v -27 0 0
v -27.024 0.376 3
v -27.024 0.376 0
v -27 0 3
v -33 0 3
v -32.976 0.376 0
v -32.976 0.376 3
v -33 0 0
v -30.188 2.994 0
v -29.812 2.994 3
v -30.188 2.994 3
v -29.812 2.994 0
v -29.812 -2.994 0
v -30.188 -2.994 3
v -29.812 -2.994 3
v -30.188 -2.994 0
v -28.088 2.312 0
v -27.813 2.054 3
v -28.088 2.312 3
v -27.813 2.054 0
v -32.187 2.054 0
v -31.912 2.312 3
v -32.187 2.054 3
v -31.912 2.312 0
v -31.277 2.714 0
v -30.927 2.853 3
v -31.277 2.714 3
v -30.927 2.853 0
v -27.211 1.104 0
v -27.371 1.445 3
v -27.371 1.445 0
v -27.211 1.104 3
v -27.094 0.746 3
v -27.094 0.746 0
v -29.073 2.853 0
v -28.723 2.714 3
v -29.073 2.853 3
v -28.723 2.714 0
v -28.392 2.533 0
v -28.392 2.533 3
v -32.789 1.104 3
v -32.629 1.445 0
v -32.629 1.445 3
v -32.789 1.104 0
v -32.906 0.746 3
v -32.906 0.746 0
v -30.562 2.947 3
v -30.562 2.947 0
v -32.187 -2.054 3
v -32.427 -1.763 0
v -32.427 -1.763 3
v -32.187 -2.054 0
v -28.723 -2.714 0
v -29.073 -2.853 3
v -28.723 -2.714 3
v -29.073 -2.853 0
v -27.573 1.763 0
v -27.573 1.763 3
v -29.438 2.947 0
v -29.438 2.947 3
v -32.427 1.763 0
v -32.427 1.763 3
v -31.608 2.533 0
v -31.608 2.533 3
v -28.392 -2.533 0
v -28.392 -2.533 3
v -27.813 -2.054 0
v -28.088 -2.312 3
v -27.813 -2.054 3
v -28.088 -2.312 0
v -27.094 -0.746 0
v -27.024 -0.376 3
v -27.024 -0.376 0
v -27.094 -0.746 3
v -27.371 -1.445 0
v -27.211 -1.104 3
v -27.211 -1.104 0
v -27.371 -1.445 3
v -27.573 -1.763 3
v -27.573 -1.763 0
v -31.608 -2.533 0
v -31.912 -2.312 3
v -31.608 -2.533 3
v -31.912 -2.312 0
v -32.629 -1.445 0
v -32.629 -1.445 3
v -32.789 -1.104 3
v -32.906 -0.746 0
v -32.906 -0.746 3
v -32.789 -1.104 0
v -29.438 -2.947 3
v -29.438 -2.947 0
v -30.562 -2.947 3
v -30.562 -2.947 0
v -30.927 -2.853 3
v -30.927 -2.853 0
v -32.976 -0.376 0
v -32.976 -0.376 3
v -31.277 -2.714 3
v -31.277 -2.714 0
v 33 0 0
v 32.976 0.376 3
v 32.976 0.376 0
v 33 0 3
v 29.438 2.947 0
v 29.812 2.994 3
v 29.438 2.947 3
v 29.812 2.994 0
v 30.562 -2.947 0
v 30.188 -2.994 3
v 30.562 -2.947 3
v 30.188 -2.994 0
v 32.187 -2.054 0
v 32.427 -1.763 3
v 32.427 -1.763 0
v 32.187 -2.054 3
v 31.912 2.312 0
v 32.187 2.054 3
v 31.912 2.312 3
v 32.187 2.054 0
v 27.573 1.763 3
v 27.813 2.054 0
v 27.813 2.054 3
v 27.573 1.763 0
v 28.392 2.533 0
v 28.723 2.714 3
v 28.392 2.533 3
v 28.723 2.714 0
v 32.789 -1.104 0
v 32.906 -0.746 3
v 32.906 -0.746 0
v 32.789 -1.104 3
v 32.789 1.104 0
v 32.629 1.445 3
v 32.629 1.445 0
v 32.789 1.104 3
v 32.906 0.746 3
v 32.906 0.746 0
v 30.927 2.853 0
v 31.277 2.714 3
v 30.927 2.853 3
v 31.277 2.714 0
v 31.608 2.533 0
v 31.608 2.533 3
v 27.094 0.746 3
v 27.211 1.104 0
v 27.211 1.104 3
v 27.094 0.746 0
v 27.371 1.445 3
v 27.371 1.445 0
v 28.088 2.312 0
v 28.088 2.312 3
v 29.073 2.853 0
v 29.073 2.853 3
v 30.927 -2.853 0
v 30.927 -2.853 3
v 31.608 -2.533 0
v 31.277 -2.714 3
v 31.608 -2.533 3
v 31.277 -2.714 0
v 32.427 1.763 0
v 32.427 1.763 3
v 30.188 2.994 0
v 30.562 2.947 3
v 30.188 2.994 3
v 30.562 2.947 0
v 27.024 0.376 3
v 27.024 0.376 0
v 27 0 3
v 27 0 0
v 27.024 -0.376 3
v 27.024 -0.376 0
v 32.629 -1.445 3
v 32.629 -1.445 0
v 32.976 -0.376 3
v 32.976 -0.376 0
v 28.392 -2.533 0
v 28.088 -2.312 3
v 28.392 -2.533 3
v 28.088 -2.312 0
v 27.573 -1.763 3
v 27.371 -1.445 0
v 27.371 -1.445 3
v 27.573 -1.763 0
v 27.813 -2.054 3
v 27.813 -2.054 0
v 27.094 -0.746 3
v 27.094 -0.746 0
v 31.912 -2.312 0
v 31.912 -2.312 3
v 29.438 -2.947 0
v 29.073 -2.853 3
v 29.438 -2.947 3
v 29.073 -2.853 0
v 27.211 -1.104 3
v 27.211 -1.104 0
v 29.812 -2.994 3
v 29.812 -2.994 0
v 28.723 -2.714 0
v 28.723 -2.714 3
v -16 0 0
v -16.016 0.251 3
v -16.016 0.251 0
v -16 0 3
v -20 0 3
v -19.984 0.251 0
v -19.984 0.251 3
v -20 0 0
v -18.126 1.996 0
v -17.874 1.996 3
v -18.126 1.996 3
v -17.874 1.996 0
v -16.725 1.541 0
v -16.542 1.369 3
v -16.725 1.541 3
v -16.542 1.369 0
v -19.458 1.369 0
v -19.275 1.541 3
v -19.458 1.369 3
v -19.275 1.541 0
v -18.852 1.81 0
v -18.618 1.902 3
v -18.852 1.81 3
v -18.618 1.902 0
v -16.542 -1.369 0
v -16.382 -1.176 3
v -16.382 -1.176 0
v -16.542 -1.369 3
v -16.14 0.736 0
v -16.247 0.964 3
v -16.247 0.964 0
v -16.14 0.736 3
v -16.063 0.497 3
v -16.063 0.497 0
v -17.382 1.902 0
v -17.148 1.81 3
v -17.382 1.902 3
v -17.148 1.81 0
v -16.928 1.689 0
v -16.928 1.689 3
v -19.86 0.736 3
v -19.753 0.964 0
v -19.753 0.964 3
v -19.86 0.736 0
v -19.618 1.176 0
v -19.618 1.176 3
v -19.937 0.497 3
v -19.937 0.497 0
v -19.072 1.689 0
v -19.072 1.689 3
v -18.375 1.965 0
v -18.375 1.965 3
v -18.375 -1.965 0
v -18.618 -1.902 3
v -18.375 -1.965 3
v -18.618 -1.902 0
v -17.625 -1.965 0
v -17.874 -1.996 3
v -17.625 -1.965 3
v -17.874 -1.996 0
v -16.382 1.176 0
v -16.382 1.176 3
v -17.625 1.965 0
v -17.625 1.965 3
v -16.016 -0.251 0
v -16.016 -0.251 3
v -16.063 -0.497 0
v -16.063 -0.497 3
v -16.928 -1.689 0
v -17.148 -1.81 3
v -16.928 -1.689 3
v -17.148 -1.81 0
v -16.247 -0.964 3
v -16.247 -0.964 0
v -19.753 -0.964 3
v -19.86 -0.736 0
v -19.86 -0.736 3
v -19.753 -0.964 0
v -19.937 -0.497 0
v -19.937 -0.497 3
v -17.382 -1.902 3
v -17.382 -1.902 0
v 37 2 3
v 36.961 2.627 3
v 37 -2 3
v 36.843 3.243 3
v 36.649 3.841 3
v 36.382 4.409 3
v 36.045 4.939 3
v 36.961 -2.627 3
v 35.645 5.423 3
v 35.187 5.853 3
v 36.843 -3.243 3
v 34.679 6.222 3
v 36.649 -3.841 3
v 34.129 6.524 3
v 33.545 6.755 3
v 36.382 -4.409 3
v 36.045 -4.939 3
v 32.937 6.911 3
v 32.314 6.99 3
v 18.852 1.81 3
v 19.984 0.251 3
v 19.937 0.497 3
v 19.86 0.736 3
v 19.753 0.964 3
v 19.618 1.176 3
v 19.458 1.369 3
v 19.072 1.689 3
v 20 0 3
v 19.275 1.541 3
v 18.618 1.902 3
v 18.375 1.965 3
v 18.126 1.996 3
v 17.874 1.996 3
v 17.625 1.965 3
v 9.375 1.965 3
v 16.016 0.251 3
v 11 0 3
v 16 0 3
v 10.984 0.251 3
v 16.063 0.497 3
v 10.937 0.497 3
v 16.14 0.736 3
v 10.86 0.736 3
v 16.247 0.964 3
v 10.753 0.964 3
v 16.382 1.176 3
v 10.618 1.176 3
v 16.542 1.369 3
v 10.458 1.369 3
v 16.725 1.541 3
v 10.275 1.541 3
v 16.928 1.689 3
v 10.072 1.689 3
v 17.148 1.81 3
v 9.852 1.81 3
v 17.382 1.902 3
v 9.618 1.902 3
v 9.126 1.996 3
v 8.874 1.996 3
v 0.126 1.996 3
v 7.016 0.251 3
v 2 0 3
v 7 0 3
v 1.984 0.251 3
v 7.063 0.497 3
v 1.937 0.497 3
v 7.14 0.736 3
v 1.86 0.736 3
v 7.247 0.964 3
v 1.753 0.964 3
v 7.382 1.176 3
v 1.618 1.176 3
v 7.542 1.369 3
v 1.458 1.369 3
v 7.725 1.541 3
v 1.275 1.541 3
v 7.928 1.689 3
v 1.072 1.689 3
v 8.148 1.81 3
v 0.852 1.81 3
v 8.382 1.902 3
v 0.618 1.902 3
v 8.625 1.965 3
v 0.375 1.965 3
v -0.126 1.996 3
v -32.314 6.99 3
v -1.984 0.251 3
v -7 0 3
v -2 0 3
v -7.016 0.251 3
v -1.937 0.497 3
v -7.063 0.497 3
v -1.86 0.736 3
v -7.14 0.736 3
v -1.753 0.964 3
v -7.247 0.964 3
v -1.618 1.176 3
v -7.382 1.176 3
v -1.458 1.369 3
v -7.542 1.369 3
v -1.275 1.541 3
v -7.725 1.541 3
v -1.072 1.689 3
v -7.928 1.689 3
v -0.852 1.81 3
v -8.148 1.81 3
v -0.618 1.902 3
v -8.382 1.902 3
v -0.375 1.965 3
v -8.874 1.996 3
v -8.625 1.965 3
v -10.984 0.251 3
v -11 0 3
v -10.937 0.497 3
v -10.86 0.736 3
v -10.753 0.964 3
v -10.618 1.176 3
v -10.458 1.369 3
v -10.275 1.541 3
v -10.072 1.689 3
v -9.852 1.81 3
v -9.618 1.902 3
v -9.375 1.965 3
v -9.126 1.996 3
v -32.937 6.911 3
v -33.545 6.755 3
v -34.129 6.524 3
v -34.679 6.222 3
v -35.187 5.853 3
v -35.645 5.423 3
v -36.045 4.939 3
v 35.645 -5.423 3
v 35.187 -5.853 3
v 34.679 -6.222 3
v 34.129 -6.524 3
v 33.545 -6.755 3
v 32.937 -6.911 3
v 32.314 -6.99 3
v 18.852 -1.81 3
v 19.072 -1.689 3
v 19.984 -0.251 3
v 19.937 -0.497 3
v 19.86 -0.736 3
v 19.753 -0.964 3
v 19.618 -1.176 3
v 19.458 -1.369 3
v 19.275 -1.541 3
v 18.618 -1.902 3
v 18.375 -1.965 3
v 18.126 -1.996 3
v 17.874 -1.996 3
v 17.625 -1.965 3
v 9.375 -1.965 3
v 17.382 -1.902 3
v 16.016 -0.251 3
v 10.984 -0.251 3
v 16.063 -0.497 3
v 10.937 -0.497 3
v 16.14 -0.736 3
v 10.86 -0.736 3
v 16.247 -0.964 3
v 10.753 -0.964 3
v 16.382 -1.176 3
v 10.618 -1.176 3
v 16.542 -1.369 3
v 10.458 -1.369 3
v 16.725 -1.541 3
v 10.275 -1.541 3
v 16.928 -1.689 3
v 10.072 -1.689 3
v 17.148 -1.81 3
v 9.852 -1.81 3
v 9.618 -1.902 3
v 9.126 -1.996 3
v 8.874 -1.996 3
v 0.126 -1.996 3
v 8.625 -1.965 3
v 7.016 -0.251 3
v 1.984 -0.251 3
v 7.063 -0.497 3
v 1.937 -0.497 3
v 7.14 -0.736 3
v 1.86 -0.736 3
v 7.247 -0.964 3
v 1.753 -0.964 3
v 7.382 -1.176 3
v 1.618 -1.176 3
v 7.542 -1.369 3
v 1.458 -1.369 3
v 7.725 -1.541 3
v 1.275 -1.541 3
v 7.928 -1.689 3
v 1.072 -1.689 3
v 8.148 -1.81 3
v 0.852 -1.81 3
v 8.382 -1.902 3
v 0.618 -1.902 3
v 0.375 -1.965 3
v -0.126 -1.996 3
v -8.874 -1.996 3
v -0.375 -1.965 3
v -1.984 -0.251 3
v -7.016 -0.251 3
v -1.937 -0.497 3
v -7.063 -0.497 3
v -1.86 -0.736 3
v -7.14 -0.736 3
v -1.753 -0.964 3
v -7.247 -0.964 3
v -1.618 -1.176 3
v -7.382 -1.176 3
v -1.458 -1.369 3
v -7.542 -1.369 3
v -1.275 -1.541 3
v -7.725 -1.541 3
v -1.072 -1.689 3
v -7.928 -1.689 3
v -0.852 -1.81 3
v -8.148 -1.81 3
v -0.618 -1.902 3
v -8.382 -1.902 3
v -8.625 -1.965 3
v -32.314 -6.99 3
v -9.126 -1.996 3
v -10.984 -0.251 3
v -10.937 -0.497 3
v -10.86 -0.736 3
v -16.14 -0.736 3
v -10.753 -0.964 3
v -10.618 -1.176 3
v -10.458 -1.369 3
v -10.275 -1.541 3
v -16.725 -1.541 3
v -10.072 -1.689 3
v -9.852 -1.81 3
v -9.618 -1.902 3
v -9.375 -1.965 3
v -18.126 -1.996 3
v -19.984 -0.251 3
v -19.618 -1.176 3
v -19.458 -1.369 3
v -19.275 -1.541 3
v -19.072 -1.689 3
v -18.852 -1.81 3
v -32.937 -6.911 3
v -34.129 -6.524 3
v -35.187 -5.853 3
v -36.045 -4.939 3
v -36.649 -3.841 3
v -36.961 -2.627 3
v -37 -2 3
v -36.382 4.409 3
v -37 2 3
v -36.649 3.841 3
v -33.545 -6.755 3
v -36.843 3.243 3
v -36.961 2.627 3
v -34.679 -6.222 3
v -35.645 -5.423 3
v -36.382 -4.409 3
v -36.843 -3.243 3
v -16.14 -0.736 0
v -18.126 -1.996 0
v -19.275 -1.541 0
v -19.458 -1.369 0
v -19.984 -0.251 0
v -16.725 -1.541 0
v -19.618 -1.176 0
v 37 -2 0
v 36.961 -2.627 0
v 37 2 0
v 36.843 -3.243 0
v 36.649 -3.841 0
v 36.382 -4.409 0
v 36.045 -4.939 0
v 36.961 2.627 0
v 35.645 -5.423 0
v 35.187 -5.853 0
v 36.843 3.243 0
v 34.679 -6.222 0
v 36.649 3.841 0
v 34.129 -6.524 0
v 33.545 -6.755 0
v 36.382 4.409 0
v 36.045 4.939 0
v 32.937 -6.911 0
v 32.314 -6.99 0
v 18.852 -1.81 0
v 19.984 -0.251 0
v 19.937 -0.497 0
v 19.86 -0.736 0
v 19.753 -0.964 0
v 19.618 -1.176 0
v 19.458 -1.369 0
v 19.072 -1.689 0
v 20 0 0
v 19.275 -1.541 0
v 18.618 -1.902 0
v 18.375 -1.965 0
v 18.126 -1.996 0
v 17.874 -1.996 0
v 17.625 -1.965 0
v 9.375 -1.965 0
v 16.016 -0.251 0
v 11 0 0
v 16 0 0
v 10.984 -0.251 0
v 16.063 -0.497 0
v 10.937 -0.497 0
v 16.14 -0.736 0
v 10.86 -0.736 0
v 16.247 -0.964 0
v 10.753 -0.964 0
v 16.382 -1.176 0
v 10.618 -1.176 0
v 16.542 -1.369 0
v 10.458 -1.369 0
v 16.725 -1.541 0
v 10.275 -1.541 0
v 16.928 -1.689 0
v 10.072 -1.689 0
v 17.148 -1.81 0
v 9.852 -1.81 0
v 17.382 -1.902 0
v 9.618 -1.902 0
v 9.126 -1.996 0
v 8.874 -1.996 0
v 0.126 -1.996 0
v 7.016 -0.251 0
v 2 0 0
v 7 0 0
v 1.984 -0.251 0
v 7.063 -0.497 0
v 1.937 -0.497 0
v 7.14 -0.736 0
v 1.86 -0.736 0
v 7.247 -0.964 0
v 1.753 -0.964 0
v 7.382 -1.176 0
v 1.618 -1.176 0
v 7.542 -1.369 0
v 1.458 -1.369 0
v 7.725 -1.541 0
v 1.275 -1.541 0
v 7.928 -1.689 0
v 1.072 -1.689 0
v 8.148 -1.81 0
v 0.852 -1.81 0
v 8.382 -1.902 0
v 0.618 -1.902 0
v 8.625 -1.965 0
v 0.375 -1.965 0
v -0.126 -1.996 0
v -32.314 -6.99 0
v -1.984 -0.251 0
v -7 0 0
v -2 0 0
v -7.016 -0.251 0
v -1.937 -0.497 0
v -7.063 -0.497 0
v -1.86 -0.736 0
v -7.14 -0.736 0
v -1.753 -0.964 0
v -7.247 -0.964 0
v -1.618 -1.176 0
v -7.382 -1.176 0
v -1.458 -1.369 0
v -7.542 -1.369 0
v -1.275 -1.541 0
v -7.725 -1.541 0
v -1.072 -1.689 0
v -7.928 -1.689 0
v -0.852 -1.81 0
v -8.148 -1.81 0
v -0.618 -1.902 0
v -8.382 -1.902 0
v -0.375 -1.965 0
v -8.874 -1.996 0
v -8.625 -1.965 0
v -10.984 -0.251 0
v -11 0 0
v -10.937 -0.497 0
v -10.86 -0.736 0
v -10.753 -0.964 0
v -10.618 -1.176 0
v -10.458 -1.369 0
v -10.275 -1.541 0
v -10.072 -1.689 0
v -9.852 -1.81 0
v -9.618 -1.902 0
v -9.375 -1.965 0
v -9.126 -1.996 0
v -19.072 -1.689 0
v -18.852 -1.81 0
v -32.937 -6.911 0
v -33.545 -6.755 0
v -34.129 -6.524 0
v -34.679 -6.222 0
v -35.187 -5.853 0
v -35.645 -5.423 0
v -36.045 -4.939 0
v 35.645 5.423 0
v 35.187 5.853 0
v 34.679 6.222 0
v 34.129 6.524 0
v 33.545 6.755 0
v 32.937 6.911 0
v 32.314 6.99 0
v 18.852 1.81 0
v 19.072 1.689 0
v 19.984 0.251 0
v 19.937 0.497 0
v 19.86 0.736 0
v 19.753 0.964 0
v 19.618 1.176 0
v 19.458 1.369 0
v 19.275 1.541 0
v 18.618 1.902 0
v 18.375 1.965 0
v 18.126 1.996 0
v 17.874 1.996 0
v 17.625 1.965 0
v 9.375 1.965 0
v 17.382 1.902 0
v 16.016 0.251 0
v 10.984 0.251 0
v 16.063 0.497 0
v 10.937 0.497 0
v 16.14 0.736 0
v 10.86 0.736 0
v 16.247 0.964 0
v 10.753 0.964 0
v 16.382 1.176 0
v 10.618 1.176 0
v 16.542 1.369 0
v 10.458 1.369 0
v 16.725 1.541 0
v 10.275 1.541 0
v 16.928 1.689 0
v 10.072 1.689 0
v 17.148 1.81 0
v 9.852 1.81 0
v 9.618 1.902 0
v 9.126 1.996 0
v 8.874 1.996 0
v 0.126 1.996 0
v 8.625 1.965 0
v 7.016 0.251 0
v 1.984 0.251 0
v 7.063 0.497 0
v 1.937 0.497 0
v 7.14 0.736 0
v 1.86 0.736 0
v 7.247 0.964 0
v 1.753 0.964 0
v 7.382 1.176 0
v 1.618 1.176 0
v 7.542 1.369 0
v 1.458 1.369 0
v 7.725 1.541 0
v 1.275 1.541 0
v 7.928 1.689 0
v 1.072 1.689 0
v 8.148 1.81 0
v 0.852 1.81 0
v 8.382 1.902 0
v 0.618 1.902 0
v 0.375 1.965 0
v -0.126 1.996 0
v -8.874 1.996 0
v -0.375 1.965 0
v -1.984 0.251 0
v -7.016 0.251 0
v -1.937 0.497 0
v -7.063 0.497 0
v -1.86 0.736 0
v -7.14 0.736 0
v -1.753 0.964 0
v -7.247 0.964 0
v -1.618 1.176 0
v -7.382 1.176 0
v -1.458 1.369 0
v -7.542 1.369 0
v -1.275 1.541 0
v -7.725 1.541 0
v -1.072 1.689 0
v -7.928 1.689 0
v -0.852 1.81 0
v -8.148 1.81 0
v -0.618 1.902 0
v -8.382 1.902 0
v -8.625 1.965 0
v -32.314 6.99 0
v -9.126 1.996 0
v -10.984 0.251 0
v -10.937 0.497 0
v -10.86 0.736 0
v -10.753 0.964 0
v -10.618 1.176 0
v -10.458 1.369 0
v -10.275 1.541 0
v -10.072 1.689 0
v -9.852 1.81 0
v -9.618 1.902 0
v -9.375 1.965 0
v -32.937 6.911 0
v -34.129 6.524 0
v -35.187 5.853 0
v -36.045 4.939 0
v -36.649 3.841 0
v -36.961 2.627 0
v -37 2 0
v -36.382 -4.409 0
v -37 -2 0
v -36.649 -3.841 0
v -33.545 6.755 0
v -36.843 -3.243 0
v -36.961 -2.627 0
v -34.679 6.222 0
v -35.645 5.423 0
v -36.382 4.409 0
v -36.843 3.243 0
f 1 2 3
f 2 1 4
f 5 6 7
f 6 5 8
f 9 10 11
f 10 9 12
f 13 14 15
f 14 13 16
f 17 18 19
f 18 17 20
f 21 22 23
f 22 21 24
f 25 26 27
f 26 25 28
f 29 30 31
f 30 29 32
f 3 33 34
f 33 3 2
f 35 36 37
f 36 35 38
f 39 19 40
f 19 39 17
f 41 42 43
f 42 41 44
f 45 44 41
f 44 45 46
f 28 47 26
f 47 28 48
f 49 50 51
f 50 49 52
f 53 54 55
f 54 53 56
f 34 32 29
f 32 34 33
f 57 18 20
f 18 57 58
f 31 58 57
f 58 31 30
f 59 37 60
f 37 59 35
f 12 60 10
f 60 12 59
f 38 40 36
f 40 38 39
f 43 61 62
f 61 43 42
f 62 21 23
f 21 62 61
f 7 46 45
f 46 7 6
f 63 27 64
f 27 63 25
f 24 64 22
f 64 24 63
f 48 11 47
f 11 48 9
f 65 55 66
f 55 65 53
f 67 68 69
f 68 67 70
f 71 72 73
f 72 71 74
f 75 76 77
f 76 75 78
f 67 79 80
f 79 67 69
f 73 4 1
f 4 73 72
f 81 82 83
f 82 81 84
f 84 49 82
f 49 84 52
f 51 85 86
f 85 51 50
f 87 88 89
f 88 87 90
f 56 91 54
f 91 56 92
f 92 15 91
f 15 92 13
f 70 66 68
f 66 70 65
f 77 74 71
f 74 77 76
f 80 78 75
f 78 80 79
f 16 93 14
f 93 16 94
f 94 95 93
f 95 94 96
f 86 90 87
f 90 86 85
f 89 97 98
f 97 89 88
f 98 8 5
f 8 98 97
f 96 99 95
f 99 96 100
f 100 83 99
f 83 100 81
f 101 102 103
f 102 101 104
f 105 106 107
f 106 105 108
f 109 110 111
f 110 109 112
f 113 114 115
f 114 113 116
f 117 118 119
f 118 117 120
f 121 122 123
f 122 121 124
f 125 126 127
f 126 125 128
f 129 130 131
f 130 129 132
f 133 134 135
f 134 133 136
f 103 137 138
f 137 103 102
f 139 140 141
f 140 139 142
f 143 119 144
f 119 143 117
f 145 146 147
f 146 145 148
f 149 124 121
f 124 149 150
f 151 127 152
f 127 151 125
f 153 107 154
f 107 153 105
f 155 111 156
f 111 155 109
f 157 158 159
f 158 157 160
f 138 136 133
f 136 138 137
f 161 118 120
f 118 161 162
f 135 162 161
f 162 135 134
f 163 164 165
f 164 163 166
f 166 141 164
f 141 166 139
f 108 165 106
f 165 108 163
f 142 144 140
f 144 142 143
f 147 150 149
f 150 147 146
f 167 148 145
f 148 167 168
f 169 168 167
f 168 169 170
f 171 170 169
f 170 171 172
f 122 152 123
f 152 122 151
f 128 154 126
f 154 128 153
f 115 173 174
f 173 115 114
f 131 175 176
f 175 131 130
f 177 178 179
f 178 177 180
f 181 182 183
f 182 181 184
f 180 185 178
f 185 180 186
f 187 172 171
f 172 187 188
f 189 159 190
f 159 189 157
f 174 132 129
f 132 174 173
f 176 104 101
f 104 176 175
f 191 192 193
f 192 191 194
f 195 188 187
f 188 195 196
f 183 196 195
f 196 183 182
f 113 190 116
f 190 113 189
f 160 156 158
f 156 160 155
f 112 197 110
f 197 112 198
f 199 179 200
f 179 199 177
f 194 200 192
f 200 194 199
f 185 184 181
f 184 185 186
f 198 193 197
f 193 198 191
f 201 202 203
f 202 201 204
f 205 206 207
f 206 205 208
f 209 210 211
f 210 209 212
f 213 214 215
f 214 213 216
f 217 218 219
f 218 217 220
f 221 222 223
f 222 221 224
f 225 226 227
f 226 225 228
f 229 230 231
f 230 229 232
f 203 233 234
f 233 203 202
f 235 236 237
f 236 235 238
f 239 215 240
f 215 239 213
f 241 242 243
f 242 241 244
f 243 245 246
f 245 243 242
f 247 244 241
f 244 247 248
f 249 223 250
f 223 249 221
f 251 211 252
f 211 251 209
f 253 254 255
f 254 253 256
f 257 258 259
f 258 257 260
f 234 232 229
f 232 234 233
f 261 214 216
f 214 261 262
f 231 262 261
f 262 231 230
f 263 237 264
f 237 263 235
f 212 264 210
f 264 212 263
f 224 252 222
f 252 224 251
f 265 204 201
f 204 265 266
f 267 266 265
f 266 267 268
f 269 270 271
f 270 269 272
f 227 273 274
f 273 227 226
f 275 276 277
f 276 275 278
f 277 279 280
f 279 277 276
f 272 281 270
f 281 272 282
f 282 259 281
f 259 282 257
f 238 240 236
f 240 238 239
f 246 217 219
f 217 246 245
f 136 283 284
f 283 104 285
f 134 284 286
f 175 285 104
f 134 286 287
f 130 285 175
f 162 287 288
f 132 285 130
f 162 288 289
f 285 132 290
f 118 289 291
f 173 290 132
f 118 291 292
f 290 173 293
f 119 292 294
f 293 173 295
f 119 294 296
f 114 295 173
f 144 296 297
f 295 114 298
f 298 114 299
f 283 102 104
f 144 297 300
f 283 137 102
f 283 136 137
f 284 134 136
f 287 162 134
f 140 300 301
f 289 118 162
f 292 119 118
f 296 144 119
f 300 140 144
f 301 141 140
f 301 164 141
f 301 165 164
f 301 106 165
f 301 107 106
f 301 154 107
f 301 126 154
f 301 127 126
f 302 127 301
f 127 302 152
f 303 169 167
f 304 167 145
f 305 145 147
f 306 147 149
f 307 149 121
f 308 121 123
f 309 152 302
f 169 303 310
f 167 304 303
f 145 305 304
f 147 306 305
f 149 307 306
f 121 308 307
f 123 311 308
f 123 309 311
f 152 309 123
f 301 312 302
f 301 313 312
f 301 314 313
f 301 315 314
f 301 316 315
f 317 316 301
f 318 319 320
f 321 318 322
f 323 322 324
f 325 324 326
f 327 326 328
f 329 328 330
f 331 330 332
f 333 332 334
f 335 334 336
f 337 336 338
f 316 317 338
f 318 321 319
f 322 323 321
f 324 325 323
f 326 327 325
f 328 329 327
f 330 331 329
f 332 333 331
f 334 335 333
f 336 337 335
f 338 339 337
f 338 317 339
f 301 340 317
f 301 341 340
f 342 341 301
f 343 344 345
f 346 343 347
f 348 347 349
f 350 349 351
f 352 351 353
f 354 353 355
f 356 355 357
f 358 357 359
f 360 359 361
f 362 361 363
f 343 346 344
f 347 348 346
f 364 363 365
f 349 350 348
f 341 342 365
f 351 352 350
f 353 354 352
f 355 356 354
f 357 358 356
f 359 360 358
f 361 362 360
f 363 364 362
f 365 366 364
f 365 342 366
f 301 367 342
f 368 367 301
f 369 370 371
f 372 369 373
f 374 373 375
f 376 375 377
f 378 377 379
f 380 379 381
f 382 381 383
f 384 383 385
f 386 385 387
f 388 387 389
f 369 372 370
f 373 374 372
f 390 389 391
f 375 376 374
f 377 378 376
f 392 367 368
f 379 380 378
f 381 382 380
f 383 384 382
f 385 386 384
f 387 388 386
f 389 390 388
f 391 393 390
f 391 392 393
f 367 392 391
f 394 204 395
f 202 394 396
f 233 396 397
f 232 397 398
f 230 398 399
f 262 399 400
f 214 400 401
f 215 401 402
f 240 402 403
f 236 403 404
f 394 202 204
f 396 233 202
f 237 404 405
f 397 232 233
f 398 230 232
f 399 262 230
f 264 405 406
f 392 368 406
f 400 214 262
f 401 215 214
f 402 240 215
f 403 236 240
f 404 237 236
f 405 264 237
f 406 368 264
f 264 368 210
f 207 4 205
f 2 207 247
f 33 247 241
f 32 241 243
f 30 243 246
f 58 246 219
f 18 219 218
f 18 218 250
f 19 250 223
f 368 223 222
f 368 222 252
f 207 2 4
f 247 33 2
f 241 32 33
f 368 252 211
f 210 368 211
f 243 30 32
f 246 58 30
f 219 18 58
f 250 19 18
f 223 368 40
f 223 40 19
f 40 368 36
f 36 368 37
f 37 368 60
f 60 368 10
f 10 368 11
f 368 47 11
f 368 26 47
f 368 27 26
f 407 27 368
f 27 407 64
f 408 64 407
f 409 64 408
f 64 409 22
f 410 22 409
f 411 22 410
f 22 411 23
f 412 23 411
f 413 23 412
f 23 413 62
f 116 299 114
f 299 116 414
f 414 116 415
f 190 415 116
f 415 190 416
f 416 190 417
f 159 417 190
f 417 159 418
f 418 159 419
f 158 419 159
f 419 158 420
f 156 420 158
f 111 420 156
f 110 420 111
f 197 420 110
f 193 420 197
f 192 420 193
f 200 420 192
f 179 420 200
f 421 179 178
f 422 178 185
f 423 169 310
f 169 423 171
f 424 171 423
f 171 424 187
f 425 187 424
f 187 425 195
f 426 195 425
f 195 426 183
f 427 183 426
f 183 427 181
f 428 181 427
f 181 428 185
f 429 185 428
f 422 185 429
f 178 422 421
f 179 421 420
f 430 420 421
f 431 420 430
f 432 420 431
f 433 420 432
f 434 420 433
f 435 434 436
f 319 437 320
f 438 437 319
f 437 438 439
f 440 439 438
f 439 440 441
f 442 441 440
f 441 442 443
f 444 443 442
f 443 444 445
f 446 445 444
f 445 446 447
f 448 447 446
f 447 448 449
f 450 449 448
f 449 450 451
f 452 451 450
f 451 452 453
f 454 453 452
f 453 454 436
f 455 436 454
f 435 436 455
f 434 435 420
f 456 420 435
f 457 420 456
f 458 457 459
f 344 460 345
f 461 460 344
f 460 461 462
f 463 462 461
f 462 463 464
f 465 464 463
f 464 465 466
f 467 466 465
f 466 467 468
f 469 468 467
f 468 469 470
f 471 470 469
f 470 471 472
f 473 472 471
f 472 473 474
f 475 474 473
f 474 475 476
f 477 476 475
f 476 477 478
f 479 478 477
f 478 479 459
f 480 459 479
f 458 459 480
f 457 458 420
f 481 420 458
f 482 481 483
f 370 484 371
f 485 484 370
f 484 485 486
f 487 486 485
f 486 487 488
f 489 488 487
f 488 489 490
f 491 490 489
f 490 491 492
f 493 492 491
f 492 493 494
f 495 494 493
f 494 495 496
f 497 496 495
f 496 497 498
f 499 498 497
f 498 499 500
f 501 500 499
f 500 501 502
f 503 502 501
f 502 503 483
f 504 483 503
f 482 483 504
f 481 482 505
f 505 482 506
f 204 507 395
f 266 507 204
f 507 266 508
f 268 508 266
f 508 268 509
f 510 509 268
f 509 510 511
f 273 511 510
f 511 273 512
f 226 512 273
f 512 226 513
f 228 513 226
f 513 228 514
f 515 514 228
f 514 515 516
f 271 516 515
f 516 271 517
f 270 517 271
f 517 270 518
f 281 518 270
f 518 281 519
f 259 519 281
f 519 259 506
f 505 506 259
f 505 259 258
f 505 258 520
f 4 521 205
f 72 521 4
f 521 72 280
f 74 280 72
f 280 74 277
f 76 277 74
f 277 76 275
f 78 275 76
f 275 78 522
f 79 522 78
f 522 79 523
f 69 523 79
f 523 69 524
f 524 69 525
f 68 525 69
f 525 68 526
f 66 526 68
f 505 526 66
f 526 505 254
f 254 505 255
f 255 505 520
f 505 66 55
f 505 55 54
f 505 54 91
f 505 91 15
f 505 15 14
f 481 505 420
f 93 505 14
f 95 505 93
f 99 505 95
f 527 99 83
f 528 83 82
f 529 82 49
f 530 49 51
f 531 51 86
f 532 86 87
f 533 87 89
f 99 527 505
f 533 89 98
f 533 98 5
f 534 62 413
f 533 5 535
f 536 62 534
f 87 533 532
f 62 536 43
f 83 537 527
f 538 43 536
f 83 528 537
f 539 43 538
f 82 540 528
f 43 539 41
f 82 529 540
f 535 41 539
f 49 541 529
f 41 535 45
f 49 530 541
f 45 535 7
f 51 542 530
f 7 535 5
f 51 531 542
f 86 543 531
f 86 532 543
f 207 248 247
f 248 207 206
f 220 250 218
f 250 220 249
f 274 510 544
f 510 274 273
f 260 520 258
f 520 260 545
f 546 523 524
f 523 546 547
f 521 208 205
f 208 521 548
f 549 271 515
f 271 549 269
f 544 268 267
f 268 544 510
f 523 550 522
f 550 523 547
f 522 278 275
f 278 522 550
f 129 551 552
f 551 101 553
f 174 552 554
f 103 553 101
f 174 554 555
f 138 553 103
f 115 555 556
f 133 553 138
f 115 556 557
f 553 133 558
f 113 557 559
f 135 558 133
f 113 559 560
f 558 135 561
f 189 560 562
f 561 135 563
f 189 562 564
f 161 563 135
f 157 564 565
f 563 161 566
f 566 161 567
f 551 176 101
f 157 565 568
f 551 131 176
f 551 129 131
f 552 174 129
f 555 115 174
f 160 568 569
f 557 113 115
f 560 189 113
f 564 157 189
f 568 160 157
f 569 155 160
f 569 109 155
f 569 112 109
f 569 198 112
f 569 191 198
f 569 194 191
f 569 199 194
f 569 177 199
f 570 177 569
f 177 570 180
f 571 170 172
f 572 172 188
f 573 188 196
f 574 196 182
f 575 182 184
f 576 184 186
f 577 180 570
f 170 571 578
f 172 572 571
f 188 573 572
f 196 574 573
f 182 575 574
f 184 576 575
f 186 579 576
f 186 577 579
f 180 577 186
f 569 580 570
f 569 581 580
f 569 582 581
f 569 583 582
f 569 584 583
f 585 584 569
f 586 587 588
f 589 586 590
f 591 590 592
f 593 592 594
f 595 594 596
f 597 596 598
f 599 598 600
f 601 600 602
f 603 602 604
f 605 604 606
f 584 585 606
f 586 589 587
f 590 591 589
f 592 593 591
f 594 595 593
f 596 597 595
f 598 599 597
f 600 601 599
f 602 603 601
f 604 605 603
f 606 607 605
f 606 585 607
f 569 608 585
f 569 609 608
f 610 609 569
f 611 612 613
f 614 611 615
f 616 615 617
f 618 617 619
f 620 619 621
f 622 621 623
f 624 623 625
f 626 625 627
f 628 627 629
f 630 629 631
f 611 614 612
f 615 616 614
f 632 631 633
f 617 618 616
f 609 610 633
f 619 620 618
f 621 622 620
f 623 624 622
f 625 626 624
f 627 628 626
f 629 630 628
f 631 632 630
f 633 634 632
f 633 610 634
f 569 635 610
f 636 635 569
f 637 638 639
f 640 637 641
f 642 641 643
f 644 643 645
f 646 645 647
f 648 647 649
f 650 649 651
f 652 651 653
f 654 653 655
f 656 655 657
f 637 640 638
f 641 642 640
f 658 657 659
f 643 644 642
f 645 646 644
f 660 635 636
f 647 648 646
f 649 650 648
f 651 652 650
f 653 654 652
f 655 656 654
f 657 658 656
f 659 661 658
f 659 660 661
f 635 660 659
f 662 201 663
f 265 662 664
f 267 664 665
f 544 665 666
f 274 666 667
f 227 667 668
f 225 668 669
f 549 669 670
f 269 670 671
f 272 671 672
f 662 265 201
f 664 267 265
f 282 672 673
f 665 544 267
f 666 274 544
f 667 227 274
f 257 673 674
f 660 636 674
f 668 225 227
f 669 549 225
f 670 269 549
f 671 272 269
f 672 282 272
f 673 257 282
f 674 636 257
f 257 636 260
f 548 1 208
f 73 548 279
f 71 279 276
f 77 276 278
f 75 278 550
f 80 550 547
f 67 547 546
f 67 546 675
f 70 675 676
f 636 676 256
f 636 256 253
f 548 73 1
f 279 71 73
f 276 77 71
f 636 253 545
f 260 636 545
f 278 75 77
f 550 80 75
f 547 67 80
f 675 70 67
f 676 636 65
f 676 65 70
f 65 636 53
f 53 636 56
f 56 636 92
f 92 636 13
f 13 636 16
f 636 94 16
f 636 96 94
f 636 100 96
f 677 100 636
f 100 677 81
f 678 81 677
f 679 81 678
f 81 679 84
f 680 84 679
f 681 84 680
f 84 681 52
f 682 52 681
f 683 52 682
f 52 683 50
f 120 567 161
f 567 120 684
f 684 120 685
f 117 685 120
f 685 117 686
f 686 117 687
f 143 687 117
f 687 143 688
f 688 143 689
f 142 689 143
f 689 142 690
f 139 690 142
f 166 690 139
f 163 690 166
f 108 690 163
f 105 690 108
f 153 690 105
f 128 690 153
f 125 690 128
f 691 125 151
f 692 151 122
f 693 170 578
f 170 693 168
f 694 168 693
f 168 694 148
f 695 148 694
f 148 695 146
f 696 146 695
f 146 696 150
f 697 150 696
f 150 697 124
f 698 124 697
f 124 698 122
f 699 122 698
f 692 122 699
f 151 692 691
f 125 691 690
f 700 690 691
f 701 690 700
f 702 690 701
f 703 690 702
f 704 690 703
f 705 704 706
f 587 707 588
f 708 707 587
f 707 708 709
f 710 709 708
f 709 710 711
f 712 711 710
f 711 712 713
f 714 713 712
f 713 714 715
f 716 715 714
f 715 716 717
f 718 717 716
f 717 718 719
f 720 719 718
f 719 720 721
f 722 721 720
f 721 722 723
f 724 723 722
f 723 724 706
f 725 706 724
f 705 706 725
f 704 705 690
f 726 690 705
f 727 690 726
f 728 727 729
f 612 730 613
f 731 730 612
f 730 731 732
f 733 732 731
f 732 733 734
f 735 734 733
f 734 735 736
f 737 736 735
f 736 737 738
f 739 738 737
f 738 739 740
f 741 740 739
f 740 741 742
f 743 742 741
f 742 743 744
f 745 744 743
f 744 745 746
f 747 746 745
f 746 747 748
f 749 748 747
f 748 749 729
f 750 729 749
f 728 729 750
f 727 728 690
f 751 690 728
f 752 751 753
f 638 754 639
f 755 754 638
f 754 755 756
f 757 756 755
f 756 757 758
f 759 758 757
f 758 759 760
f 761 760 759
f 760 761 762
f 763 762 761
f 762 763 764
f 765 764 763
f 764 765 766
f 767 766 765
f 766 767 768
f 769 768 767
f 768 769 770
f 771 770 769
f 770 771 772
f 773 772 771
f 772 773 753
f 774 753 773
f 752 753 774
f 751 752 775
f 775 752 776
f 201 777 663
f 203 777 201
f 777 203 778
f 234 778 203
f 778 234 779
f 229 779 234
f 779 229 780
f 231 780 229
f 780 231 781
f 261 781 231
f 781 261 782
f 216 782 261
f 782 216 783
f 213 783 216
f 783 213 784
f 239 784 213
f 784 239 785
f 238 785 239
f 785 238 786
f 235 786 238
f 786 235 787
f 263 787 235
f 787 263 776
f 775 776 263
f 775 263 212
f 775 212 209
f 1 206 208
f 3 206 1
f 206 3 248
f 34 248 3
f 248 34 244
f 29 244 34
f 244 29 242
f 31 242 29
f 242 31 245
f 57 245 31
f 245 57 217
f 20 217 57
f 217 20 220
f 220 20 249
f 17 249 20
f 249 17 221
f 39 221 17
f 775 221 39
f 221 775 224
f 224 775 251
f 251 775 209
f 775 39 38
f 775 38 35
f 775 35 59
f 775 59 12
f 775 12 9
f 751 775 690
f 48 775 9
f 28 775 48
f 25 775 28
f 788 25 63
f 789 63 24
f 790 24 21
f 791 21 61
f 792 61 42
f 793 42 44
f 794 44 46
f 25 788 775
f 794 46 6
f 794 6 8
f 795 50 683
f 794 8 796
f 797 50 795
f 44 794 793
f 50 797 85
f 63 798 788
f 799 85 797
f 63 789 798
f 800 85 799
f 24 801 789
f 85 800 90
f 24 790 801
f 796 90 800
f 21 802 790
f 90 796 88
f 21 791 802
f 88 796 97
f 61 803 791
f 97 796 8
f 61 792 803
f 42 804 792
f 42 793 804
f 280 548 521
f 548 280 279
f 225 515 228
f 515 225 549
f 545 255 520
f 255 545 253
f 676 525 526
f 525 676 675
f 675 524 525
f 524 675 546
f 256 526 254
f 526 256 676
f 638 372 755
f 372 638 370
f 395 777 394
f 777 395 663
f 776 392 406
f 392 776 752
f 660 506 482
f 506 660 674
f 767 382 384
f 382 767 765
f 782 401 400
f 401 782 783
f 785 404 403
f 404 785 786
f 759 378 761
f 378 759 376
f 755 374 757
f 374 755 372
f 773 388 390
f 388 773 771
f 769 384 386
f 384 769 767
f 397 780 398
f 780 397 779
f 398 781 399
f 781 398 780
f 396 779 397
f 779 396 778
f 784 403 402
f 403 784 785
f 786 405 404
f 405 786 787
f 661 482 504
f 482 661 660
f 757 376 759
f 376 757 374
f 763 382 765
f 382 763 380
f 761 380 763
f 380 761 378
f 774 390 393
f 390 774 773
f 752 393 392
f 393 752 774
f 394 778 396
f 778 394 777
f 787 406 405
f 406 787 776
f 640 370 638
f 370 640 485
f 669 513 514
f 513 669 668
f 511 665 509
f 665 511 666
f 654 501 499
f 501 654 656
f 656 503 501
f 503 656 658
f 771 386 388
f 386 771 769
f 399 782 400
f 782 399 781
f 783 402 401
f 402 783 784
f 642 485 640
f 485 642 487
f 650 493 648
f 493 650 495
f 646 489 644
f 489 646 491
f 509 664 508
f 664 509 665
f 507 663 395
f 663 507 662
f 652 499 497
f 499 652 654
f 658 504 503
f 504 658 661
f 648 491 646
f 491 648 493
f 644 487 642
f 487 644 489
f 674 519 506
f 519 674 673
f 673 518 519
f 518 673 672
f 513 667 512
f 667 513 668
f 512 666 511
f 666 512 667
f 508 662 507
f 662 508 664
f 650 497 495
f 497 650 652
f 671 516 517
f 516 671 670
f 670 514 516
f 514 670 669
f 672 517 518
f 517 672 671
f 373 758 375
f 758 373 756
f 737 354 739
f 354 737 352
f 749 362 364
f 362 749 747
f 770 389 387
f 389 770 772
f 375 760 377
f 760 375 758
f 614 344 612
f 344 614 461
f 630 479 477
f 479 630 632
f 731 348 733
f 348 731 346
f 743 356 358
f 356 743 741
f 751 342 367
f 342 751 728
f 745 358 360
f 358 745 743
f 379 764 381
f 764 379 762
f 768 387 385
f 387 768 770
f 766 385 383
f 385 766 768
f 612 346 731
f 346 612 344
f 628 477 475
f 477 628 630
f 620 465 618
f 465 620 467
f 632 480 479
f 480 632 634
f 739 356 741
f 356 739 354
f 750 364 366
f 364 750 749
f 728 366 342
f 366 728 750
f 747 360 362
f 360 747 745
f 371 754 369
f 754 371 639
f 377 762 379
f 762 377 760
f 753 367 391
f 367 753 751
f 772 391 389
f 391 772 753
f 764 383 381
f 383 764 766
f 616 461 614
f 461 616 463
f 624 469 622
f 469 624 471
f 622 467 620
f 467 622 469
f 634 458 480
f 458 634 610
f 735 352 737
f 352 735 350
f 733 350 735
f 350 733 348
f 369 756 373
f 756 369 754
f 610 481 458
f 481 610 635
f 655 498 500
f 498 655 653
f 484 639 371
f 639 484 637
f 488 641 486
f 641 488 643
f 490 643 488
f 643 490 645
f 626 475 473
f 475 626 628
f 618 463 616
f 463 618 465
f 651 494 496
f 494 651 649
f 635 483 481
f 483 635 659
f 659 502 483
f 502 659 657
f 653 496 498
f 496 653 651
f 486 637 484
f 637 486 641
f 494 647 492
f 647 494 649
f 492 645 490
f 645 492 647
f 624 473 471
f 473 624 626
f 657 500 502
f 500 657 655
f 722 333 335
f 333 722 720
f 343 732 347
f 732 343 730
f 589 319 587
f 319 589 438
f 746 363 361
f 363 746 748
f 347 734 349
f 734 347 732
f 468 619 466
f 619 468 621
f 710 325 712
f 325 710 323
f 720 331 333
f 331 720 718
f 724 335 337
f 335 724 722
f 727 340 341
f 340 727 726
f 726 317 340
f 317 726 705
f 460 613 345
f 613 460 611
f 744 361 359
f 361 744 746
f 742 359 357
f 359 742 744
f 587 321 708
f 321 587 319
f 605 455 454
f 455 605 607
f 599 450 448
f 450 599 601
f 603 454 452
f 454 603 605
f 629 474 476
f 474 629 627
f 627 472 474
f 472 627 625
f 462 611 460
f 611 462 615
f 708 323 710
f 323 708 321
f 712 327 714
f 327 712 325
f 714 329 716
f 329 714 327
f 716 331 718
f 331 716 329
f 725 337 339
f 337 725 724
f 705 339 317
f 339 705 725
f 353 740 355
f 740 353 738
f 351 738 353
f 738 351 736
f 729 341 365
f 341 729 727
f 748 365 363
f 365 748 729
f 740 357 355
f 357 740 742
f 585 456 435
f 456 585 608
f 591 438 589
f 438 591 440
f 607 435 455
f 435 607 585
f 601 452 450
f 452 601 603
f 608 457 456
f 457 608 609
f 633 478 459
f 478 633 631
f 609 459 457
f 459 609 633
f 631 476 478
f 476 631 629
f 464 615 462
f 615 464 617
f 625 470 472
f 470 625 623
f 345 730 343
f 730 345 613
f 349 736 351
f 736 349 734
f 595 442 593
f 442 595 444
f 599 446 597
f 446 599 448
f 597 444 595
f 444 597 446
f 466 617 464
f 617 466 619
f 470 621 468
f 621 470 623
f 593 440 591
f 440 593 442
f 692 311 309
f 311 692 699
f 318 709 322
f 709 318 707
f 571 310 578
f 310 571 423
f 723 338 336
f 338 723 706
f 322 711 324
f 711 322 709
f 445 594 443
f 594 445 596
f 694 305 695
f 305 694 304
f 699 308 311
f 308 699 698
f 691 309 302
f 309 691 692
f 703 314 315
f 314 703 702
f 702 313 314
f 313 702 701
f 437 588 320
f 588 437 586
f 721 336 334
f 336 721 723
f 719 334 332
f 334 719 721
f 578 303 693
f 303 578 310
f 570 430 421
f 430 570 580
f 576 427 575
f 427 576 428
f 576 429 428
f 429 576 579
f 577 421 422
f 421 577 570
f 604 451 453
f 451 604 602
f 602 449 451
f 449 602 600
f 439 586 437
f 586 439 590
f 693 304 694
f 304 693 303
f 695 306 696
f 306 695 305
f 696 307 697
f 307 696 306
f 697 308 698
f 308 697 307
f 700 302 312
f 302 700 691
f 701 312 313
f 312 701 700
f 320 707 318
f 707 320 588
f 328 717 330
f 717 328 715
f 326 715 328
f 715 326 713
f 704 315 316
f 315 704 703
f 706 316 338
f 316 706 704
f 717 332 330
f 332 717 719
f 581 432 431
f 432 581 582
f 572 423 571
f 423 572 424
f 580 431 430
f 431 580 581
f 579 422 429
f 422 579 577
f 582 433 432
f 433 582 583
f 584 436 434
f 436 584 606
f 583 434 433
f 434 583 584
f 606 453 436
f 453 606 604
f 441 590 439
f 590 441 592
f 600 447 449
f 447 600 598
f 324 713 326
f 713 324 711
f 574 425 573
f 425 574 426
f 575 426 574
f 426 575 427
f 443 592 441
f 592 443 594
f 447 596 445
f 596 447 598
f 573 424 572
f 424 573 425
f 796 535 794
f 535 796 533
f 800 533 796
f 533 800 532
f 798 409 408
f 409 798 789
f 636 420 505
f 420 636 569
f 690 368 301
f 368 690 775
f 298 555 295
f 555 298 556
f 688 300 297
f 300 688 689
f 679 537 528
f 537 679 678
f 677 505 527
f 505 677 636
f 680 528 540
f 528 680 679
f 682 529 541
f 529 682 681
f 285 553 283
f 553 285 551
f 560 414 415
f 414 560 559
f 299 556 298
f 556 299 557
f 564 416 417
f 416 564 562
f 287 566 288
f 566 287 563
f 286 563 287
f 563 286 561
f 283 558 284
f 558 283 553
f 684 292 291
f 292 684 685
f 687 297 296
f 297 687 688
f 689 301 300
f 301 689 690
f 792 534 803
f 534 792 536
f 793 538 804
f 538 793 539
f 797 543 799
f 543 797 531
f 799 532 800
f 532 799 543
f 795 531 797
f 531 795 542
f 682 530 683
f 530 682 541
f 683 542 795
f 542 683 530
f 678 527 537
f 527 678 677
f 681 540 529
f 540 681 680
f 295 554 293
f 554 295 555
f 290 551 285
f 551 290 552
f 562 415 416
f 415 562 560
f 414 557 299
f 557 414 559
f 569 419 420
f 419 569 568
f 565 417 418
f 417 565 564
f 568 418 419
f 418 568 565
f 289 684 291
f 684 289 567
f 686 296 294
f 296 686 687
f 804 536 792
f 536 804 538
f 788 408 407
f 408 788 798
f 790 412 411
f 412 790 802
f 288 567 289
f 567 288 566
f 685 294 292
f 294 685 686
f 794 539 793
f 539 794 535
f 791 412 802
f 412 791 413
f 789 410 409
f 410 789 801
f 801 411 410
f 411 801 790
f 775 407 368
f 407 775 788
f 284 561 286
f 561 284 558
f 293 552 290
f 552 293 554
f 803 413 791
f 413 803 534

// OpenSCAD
$fn = 50;


difference() {
	union() {
		hull() {
			translate(v = [-32.0000000000, 2.0000000000, 0]) {
				cylinder(h = 3, r = 5);
			}
			translate(v = [32.0000000000, 2.0000000000, 0]) {
				cylinder(h = 3, r = 5);
			}
			translate(v = [-32.0000000000, -2.0000000000, 0]) {
				cylinder(h = 3, r = 5);
			}
			translate(v = [32.0000000000, -2.0000000000, 0]) {
				cylinder(h = 3, r = 5);
			}
		}
	}
	union() {
		#translate(v = [-30.0000000000, 0.0000000000, 0]) {
			cylinder(h = 3, r = 3.0000000000);
		}
		#translate(v = [30.0000000000, 0.0000000000, 0]) {
			cylinder(h = 3, r = 3.0000000000);
		}
		#translate(v = [-30.0000000000, 0.0000000000, -100.0000000000]) {
			cylinder(h = 200, r = 3.0000000000);
		}
		#translate(v = [-30.0000000000, 0.0000000000, -100.0000000000]) {
			cylinder(h = 200, r = 3.0000000000);
		}
		#translate(v = [30.0000000000, 0.0000000000, -100.0000000000]) {
			cylinder(h = 200, r = 3.0000000000);
		}
		#translate(v = [30.0000000000, 0.0000000000, -100.0000000000]) {
			cylinder(h = 200, r = 3.0000000000);
		}
		#translate(v = [-30.0000000000, 0.0000000000, 0]) {
			cylinder(h = 3, r = 1.5000000000);
		}
		#translate(v = [30.0000000000, 0.0000000000, 0]) {
			cylinder(h = 3, r = 1.5000000000);
		}
		#translate(v = [-30.0000000000, 0.0000000000, 0]) {
			cylinder(h = 3, r = 1.5000000000);
		}
		#translate(v = [30.0000000000, 0.0000000000, 0]) {
			cylinder(h = 3, r = 1.5000000000);
		}
		#translate(v = [-30.0000000000, 0.0000000000, 0]) {
			cylinder(h = 3, r = 1.5000000000);
		}
		#translate(v = [30.0000000000, 0.0000000000, 0]) {
			cylinder(h = 3, r = 1.5000000000);
		}
		#translate(v = [-18.0000000000, 0, 0]) {
			cylinder(h = 3, r = 2.0000000000);
		}
		#translate(v = [-9.0000000000, 0, 0]) {
			cylinder(h = 3, r = 2.0000000000);
		}
		#cylinder(h = 3, r = 2.0000000000);
		#translate(v = [9.0000000000, 0, 0]) {
			cylinder(h = 3, r = 2.0000000000);
		}
		#translate(v = [18.0000000000, 0, 0]) {
			cylinder(h = 3, r = 2.0000000000);
		}
	}
}
